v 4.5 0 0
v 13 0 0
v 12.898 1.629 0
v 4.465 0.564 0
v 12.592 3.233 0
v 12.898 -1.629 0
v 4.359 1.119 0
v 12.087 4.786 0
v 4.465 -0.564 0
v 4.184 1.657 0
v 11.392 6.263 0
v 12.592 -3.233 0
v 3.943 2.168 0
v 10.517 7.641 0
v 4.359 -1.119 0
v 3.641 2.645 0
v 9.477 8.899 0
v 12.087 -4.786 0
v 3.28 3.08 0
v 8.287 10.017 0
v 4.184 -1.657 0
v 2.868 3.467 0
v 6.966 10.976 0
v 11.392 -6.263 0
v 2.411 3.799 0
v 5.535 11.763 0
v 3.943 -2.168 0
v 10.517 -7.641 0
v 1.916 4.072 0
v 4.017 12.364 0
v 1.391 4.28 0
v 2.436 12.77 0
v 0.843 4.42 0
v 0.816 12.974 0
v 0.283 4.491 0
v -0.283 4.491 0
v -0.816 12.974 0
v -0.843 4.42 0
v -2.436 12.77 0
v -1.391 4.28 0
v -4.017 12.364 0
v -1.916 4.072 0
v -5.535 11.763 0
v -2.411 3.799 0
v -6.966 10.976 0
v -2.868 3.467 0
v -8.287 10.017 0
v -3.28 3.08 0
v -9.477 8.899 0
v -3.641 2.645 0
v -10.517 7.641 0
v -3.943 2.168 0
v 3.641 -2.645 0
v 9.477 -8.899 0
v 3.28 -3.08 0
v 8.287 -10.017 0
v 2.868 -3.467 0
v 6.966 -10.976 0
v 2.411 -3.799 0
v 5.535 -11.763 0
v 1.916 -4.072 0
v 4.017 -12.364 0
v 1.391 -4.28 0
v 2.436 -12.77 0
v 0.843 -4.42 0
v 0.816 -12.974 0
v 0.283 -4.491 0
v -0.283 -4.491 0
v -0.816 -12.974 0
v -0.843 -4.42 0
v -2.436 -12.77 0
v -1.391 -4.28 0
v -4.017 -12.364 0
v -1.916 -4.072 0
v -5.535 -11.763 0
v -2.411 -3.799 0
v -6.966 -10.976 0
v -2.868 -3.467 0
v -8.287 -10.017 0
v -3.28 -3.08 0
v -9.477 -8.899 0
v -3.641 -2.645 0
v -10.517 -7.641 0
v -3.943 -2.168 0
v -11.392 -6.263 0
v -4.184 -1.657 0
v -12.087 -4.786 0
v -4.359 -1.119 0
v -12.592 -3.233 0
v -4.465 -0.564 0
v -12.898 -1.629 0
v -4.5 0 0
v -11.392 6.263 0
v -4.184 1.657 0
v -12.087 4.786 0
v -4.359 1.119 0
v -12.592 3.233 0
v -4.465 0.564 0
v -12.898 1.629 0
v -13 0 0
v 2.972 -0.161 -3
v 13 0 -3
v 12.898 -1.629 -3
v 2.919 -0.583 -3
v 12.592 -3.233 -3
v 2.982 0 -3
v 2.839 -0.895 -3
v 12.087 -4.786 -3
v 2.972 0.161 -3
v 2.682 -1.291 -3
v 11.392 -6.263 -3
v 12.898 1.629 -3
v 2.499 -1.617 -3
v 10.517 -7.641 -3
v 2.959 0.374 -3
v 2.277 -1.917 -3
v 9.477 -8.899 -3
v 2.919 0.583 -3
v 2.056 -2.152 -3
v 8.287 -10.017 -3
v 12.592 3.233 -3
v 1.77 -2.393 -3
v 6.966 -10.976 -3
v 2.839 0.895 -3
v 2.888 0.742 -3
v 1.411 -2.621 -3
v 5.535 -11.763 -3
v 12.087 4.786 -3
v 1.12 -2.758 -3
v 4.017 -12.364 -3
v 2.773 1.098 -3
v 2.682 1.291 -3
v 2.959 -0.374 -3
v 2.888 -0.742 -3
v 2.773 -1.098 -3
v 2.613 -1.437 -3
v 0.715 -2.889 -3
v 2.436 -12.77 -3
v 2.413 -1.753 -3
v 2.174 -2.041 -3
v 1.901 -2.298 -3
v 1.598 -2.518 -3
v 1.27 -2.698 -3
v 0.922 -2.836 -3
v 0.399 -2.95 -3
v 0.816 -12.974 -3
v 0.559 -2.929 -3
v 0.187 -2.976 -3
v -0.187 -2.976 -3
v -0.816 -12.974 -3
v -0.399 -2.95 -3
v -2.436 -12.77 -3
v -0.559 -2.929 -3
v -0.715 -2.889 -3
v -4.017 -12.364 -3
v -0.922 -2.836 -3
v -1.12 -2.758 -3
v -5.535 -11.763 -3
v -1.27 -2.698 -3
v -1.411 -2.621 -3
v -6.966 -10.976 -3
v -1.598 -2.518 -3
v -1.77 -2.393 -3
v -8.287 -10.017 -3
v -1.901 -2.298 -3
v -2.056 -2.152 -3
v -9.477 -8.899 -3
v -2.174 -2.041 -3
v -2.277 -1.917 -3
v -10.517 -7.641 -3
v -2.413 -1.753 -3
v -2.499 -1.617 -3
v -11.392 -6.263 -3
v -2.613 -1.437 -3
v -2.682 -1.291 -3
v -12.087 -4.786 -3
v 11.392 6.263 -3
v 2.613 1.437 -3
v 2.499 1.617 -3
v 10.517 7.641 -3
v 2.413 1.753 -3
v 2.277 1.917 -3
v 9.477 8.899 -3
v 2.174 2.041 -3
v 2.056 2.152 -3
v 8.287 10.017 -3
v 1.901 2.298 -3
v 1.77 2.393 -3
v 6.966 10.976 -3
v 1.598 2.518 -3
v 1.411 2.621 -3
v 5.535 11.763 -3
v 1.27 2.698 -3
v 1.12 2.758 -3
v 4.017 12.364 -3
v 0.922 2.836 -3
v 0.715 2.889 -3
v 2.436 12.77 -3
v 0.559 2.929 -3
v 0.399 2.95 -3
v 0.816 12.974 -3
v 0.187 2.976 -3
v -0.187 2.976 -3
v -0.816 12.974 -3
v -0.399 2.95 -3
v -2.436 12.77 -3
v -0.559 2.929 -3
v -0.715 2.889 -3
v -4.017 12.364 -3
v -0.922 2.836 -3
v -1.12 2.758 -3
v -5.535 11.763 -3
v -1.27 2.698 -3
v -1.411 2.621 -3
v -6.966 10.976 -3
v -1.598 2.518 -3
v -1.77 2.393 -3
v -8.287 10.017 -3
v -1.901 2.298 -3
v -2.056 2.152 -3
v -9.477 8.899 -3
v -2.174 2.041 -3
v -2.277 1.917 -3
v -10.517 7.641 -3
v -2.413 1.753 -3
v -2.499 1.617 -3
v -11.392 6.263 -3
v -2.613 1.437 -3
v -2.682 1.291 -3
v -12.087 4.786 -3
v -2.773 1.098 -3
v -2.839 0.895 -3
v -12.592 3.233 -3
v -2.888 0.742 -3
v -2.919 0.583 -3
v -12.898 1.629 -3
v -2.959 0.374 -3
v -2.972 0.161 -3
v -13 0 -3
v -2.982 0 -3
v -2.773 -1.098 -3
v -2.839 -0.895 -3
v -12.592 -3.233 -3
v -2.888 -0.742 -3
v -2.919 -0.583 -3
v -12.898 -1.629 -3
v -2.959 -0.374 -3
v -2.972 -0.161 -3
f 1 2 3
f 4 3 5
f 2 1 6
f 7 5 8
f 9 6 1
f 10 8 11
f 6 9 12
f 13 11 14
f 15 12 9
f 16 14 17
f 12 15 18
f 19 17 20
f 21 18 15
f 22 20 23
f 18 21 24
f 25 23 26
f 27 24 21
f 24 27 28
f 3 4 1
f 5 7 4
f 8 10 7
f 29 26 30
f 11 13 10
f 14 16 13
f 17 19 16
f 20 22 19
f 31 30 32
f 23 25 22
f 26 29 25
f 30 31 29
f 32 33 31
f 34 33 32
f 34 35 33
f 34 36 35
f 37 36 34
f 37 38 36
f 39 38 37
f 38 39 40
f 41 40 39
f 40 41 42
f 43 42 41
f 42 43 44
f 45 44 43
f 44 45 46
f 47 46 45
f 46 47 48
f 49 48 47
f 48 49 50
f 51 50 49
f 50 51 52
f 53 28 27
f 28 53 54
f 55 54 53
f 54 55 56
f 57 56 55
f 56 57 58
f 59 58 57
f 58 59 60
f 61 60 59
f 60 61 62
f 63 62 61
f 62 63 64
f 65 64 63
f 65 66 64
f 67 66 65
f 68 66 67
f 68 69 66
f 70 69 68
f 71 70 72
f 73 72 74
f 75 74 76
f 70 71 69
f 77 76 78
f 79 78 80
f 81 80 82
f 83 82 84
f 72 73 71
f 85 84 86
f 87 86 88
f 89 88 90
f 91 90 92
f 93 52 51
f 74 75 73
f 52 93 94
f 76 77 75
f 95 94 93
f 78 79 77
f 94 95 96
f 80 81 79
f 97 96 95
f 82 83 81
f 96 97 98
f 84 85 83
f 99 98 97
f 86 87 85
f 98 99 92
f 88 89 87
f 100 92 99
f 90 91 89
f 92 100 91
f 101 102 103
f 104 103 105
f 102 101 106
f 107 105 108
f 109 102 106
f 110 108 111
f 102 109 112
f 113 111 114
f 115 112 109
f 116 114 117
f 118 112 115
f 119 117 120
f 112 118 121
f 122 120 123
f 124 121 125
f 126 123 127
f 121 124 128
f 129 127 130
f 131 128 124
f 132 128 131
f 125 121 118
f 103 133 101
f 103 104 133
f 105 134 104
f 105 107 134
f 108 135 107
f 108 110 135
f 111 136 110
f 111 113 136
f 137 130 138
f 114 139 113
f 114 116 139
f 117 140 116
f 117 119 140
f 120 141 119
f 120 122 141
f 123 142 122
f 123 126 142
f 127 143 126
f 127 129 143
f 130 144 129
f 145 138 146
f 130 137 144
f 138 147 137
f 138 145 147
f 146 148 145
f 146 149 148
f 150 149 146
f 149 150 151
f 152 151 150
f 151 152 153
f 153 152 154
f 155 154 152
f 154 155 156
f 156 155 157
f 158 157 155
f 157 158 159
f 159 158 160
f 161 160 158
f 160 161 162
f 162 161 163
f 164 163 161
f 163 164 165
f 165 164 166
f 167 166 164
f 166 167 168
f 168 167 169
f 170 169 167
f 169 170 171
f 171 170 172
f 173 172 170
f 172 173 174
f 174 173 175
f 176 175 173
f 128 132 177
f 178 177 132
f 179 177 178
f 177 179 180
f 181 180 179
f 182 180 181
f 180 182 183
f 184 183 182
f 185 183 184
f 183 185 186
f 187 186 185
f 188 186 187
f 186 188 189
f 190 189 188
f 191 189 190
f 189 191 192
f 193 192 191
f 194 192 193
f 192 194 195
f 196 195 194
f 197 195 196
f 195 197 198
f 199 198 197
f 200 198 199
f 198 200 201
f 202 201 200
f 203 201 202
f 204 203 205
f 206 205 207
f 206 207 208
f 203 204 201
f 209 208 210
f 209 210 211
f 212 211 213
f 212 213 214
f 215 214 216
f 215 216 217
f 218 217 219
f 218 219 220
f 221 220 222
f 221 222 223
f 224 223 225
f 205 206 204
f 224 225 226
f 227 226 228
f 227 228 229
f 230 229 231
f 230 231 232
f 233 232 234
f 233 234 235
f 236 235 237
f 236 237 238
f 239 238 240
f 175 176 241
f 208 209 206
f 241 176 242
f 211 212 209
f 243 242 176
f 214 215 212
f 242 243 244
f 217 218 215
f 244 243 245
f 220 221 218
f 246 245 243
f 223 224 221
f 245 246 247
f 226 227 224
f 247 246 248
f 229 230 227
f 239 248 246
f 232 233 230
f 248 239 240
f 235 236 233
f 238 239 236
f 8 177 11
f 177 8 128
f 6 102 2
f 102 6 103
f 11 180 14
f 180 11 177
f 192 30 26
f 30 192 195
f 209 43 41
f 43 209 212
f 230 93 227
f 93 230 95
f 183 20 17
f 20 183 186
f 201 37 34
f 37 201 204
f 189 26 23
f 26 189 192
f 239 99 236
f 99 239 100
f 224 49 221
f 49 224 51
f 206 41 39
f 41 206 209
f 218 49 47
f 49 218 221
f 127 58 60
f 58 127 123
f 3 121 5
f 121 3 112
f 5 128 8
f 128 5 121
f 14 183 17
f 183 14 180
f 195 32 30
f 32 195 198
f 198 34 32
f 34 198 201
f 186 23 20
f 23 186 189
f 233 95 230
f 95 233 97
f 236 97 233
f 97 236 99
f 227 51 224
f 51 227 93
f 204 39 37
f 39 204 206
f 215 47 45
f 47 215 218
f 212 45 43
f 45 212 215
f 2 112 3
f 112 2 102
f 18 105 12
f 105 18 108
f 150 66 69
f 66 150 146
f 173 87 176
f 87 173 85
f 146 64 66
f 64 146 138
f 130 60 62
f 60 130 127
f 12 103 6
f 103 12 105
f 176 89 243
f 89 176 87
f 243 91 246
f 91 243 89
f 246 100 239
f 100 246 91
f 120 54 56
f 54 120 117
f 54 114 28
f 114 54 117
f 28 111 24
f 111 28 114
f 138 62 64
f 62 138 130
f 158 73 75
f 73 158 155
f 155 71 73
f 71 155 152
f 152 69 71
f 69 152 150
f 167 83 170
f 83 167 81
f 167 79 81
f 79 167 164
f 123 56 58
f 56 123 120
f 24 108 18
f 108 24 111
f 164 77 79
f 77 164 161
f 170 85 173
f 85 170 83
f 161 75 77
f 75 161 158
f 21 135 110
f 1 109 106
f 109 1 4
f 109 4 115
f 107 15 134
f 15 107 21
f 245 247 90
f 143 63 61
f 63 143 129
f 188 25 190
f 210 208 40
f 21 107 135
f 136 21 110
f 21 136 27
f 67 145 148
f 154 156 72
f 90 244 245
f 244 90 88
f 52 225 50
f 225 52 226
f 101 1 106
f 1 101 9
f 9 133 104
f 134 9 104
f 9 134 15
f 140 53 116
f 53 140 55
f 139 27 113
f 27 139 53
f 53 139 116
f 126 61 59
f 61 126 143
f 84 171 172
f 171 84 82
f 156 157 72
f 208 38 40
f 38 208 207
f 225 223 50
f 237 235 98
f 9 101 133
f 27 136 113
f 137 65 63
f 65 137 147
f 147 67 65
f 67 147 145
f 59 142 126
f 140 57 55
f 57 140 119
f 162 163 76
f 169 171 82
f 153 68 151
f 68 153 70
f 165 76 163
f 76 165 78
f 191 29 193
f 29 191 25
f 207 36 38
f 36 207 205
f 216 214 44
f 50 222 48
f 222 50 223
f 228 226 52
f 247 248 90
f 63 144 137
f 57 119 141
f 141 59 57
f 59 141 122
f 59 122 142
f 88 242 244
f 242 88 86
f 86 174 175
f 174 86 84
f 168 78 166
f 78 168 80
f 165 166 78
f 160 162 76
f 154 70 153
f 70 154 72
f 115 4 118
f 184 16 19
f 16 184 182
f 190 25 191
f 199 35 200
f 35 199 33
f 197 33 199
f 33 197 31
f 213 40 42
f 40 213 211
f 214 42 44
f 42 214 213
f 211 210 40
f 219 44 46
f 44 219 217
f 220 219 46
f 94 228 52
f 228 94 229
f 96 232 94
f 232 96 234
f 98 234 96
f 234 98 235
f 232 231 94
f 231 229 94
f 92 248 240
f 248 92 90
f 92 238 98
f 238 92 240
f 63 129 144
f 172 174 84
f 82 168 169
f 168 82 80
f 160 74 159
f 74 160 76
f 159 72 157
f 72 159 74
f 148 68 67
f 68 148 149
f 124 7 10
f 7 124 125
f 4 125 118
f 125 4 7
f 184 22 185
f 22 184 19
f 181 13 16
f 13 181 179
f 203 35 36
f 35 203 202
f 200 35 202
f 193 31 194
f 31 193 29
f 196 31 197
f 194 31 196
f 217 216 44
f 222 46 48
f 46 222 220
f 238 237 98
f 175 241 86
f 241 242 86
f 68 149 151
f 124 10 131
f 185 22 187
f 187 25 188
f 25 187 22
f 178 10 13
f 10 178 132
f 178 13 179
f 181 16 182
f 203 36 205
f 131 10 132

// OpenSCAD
$fn = 50;


difference() {
	union() {
		translate(v = [0, 0, -3.0000000000]) {
			cylinder(h = 3, r = 10.0000000000);
		}
		translate(v = [0, 0, -3.0000000000]) {
			cylinder(h = 3, r = 13.0000000000);
		}
	}
	union() {
		translate(v = [0, 0, 0]) {
			rotate(a = [0, 0, 0]) {
				difference() {
					union() {
						#translate(v = [0, 0, -3.0000000000]) {
							cylinder(h = 3, r = 2.2500000000);
						}
						#translate(v = [0, 0, -4.2000000000]) {
							cylinder(h = 4.2000000000, r1 = 2.3750000000, r2 = 4.5000000000);
						}
						#translate(v = [0, 0, -3.0000000000]) {
							cylinder(h = 3, r = 2.3750000000);
						}
						#translate(v = [0, 0, -3.0000000000]) {
							cylinder(h = 3, r = 2.2500000000);
						}
					}
					union();
				}
			}
		}
	}
}
